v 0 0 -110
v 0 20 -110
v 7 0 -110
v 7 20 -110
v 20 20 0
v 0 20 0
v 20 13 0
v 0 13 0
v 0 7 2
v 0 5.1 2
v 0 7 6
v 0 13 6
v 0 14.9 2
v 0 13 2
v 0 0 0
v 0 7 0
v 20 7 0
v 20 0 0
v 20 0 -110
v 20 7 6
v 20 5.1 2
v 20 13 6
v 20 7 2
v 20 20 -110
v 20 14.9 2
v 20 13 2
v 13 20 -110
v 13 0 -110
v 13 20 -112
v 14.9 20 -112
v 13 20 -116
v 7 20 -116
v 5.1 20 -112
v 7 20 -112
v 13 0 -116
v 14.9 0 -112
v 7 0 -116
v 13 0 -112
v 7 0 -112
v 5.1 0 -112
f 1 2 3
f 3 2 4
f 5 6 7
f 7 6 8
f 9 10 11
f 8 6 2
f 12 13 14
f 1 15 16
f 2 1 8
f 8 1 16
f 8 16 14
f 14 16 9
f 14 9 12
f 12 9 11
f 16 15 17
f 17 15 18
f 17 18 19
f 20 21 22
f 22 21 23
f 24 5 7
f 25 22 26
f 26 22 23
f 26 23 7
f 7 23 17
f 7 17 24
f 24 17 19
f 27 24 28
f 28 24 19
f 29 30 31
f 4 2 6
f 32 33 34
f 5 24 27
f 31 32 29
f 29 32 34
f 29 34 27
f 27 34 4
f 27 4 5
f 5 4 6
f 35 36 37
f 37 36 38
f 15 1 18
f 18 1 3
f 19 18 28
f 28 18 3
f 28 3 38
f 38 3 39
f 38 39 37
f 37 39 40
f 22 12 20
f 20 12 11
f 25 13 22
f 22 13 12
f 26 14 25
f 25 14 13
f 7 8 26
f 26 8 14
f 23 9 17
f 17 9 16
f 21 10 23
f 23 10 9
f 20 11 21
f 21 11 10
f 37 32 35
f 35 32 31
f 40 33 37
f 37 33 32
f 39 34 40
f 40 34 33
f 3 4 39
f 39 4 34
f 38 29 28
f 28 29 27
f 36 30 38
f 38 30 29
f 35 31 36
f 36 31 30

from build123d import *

# Parameters (mm, degrees)
SKETCH1_W           = 20
SKETCH1_H           = 110
BOSS_EXTRUDE1_DEPTH = 20
BOSS_EXTRUDE3_DEPTH = 20
BOSS_EXTRUDE4_DEPTH = 20


with BuildPart() as part:
    # Sketch1 → Boss-Extrude1 (new body)
    with BuildSketch(Plane(origin=(0, 0, 0), x_dir=(1, 0, 0), z_dir=(0, 1, 0))):
        with Locations((10, 55)):
            Rectangle(SKETCH1_W, SKETCH1_H)
    extrude(amount=BOSS_EXTRUDE1_DEPTH)

    # Sketch3 → Boss-Extrude3 (add)
    with BuildSketch(Plane(origin=(0, 0, 0), x_dir=(0, 0, -1), z_dir=(1, 0, 0))):
        Polygon((0, 7), (0, 13), (-2, 13), (-2, 14.9), (-6, 13), (-6, 7), (-2, 5.1), (-2, 7), align=None)
    extrude(amount=BOSS_EXTRUDE3_DEPTH)

    # Sketch5 → Boss-Extrude4 (add)
    with BuildSketch(Plane(origin=(0, 20, 0), x_dir=(1, 0, 0), z_dir=(0, 1, 0))):
        Polygon((13, 110), (7, 110), (7, 112), (5.1, 112), (7, 116), (13, 116), (14.9, 112), (13, 112), align=None)
    extrude(amount=-BOSS_EXTRUDE4_DEPTH)


solid = part.part
